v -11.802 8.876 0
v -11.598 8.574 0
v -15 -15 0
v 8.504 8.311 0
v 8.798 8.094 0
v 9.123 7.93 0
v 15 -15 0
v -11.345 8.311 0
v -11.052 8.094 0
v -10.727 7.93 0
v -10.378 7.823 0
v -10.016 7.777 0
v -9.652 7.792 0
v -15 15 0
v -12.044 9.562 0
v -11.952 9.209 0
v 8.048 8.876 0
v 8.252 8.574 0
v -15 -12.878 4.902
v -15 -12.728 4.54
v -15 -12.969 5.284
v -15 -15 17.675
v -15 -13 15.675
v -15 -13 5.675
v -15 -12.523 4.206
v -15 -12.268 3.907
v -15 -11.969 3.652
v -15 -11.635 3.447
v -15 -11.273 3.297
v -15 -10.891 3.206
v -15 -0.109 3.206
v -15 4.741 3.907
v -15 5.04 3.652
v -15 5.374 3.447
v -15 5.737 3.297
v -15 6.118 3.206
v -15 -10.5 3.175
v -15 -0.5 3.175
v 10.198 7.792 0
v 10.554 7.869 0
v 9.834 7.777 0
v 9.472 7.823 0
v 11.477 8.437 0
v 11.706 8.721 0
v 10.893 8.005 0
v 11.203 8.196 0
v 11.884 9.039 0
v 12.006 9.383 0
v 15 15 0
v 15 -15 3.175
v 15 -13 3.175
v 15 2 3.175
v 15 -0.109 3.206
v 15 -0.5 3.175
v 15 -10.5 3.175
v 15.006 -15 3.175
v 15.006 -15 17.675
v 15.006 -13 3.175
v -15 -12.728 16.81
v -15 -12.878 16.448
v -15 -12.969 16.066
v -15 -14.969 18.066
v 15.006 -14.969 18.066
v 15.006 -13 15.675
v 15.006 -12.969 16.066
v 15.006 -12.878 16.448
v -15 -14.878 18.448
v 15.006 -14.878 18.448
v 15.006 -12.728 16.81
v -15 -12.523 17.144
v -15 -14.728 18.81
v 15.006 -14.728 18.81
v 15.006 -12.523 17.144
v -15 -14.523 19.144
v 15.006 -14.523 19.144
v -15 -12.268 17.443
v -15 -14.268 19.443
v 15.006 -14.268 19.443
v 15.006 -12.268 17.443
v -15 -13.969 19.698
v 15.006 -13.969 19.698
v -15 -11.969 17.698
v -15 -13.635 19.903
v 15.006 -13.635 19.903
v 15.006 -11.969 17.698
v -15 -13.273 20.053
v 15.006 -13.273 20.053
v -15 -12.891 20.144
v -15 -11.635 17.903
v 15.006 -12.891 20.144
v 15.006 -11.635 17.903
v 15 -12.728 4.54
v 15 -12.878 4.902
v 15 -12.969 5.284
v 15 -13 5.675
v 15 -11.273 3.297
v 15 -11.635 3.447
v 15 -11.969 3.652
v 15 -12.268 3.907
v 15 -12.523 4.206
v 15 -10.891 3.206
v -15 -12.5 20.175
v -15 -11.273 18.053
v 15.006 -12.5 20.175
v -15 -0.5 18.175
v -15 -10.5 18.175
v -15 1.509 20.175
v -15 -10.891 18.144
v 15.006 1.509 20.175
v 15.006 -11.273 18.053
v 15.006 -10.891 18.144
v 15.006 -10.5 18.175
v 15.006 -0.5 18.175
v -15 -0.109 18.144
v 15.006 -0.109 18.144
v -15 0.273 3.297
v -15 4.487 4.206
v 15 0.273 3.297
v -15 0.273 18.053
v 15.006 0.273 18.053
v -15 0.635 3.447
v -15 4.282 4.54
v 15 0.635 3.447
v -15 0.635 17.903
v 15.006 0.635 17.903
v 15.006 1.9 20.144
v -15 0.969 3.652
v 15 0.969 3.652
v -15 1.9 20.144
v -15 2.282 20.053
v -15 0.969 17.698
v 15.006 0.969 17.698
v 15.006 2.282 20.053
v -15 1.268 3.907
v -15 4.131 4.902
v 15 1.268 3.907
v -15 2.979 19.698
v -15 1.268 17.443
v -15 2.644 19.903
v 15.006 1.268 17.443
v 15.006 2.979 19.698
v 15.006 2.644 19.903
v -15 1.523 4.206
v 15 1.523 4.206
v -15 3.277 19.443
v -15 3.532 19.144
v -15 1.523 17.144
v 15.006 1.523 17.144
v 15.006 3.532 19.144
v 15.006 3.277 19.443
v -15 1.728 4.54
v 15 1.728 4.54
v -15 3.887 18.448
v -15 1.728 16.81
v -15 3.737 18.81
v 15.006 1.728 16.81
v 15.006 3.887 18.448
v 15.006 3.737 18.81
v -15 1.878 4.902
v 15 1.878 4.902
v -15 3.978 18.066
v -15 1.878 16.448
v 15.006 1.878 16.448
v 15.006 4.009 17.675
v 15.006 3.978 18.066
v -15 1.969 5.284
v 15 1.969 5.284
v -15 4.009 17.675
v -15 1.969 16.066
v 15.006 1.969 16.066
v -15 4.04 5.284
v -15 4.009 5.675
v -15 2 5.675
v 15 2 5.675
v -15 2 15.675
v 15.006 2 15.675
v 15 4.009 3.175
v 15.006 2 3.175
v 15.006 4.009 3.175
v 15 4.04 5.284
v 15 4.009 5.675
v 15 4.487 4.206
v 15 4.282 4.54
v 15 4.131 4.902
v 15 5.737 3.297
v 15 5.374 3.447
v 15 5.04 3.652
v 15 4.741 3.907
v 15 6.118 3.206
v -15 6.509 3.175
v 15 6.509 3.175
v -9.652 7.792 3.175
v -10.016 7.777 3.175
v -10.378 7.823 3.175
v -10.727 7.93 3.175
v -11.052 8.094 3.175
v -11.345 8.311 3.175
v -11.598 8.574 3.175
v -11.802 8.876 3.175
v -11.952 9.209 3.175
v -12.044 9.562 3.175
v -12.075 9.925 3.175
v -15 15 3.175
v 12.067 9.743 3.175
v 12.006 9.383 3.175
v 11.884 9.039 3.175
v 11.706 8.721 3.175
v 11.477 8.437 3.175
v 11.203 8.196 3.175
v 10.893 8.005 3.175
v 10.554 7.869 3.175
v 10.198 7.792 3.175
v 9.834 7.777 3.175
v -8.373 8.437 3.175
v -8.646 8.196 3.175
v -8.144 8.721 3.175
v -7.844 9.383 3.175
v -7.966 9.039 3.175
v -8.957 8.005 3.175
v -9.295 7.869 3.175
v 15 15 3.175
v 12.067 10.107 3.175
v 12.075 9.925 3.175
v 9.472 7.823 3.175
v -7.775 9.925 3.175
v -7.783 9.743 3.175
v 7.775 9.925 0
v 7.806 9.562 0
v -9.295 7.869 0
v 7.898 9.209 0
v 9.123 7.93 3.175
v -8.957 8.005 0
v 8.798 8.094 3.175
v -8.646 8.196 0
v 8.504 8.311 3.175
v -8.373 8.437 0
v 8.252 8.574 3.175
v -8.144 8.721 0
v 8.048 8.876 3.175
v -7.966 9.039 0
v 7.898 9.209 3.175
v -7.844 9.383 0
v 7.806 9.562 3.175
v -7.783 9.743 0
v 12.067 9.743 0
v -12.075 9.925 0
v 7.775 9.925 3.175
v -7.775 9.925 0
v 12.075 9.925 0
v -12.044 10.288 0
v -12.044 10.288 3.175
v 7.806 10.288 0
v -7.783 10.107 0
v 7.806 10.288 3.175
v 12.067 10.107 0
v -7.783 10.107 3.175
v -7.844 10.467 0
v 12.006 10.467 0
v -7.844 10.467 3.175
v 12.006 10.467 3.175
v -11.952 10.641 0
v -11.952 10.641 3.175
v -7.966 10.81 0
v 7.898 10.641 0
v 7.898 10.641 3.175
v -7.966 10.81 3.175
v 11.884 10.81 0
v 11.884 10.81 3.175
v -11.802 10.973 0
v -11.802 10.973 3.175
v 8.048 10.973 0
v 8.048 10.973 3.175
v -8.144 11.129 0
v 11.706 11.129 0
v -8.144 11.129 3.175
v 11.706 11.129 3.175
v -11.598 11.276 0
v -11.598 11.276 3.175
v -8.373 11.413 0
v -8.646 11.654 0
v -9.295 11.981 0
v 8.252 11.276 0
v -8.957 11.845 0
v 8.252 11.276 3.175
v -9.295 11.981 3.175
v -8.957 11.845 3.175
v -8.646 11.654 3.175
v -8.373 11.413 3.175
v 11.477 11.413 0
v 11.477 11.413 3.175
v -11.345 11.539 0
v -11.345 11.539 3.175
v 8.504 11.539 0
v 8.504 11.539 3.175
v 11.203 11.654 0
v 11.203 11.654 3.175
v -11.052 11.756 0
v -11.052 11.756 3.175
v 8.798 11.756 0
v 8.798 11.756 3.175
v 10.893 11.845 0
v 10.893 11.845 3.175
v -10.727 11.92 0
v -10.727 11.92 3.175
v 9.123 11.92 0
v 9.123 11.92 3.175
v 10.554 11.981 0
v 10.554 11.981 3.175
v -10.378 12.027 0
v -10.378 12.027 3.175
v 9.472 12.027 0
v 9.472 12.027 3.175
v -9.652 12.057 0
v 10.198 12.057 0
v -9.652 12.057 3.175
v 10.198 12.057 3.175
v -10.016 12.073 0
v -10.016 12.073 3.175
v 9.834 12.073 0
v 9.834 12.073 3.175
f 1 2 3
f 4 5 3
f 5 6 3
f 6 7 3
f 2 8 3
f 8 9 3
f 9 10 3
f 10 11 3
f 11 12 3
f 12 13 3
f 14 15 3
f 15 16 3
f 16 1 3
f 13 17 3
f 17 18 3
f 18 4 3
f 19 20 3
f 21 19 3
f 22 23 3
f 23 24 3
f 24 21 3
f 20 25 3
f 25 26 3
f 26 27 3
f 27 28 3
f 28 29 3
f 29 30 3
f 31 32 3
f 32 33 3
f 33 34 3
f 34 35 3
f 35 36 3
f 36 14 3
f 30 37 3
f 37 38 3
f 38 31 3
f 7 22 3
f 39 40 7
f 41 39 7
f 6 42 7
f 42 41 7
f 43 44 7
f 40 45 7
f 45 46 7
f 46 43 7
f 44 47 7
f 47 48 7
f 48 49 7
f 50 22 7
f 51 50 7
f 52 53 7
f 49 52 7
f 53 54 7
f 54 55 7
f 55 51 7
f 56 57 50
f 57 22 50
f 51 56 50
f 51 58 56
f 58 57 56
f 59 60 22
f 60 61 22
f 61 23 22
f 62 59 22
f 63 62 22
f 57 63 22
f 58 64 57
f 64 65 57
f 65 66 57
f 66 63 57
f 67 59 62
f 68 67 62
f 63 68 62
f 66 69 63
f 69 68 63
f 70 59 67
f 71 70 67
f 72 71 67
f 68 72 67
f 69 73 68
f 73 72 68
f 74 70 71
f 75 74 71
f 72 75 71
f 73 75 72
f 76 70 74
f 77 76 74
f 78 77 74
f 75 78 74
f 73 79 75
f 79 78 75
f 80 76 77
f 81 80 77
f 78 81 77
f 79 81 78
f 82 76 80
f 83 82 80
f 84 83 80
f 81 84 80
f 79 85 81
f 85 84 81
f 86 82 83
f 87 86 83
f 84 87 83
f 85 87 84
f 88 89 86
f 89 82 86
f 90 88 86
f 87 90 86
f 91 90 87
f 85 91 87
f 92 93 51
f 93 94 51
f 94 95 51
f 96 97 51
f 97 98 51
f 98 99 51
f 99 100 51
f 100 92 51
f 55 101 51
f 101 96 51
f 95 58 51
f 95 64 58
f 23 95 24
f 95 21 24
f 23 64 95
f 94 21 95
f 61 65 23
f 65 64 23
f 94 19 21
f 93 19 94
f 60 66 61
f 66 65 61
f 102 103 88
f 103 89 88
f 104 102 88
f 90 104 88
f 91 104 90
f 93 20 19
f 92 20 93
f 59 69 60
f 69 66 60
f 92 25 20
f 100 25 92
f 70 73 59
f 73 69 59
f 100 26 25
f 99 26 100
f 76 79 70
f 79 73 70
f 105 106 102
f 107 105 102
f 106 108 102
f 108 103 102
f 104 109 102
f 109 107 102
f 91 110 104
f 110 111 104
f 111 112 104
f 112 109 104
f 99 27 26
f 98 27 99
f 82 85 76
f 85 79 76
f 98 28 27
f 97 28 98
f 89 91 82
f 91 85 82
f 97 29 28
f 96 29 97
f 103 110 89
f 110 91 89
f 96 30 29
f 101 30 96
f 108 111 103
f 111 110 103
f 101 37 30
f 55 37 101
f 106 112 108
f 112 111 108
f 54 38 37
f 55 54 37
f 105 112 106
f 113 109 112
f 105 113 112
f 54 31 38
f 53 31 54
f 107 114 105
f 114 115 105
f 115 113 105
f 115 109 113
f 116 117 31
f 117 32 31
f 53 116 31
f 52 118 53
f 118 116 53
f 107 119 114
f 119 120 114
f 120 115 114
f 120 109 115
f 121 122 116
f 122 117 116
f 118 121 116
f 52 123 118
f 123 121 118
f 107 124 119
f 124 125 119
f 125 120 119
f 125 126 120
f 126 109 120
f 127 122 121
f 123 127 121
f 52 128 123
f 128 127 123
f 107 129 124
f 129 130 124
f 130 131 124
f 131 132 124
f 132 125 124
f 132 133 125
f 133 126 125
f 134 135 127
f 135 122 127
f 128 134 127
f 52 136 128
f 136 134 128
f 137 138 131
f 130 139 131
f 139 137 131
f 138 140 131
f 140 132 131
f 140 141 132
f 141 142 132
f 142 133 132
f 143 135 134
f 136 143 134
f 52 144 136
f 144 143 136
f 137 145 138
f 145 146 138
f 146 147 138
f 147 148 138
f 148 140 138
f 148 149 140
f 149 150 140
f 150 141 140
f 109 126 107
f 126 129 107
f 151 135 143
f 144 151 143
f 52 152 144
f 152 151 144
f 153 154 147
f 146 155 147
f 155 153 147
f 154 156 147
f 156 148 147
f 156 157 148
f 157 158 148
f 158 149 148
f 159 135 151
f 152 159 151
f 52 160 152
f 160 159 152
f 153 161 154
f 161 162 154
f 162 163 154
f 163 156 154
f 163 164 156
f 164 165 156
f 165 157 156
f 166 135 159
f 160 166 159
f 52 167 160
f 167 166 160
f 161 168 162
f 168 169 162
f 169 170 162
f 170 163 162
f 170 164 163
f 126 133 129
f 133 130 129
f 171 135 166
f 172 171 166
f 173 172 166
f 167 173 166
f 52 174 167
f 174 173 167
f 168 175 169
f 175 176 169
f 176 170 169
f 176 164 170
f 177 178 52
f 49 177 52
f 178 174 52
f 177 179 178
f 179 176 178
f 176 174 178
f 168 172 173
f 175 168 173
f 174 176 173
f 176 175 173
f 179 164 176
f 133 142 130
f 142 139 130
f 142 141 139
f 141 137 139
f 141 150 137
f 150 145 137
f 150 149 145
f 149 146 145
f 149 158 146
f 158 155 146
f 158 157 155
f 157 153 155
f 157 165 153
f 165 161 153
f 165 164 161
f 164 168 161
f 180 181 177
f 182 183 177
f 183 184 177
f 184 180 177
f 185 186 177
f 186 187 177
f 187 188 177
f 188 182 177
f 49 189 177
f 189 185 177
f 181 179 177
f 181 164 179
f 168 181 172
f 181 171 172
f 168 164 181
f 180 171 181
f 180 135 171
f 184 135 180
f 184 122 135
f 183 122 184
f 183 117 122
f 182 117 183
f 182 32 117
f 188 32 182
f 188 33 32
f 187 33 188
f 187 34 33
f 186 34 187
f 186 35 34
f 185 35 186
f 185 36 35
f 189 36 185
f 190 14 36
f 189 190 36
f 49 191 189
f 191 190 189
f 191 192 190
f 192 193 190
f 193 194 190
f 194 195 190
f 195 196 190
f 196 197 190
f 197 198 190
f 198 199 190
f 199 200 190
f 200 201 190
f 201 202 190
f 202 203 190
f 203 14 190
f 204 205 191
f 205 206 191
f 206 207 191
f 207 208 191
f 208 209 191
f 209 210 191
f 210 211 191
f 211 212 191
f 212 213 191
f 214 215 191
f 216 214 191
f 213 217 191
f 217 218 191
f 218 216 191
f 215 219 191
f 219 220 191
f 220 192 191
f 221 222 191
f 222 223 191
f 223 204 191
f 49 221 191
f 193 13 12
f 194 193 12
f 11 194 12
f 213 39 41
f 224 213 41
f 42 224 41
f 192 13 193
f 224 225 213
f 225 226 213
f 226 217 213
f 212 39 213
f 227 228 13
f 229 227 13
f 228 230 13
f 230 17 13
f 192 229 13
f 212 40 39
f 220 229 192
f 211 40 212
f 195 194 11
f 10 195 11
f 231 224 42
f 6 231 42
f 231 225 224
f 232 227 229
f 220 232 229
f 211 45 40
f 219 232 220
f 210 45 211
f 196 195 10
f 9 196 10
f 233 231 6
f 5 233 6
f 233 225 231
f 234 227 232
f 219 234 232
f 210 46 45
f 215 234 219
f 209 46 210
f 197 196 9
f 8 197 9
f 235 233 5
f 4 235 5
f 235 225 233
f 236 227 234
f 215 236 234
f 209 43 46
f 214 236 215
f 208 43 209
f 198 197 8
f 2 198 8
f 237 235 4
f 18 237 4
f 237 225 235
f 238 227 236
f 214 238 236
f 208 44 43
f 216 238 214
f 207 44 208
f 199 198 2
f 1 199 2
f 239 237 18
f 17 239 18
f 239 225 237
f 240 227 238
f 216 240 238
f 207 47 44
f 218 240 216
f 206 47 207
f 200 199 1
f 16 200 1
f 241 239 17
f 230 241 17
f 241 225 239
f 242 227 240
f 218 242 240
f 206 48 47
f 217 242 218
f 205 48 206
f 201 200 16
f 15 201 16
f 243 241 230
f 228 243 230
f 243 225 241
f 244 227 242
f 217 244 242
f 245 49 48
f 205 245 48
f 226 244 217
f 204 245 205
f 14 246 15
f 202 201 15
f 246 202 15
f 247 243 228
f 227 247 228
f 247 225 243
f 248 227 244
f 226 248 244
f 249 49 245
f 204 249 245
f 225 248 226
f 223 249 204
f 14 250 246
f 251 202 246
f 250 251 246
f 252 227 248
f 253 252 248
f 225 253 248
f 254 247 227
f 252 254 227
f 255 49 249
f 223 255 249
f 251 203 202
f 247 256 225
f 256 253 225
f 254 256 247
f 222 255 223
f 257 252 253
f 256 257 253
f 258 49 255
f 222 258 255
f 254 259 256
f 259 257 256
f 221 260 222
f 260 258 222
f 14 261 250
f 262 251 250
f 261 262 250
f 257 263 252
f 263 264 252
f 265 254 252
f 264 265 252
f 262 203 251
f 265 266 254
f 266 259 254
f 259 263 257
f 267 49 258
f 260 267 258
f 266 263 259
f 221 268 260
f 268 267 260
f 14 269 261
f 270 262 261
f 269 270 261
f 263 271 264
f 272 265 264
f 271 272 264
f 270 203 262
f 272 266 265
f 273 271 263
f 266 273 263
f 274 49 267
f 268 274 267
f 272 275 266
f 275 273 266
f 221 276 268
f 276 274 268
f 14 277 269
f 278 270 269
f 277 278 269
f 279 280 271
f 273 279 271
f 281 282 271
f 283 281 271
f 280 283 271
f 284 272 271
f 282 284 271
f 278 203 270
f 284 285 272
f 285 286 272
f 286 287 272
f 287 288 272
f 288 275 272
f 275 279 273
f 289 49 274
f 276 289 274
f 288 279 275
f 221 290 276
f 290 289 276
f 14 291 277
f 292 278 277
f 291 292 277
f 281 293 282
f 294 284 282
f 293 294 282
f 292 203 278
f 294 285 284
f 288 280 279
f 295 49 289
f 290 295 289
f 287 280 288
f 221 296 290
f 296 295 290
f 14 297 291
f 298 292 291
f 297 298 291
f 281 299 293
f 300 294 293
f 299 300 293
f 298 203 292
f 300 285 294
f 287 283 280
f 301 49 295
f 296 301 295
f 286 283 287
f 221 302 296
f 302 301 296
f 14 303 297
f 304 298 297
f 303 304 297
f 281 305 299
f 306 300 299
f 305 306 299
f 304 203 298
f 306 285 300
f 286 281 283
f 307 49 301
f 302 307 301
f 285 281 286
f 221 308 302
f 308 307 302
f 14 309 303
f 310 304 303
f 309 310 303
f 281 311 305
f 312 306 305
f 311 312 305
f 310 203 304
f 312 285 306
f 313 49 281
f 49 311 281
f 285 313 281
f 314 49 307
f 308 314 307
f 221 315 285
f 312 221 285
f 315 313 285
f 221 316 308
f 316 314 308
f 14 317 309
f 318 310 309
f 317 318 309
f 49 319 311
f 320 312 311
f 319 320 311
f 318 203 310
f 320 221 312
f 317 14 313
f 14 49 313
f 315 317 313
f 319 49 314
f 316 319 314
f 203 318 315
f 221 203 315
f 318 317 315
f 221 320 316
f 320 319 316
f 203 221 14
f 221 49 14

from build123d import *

# Parameters (mm, degrees)
SKETCH1_W           = 30
SKETCH1_H           = 30
SKETCH1_R           = 2.15
BOSS_EXTRUDE1_DEPTH = 3.175
SKETCH2_W           = 30.005666414
SKETCH2_H           = 19.009049167
SKETCH2_W_2         = 23.655666414
SKETCH2_H_2         = 12.659049167
BOSS_EXTRUDE2_DEPTH = 15
SKETCH3_W           = 30.005666414
SKETCH3_H           = 19.009049167
BOSS_EXTRUDE3_DEPTH = 2
SKETCH4_W           = 15
SKETCH4_H           = 15
CUT_EXTRUDE1_DEPTH  = 31.005666414
FILLET1_R           = 2.5


with BuildPart() as part:
    # Sketch1 → Boss-Extrude1 (new body)
    with BuildSketch(Plane.XY):
        Rectangle(SKETCH1_W, SKETCH1_H)
        with Locations((-9.924911661, 9.924911661)):
            Circle(SKETCH1_R, mode=Mode.SUBTRACT)
        with Locations((9.924911661, 9.924911661)):
            Circle(SKETCH1_R, mode=Mode.SUBTRACT)
    extrude(amount=BOSS_EXTRUDE1_DEPTH)

    # Sketch2 → Boss-Extrude2 (add)
    with BuildSketch(Plane.XY.offset(3.175)):
        with Locations((0.002833207, -5.495475417)):
            Rectangle(SKETCH2_W, SKETCH2_H)
        with Locations((0.002833207, -5.495475417)):
            Rectangle(SKETCH2_W_2, SKETCH2_H_2, mode=Mode.SUBTRACT)
    extrude(amount=BOSS_EXTRUDE2_DEPTH)

    # Sketch3 → Boss-Extrude3 (add)
    with BuildSketch(Plane.XY.offset(18.175)):
        with Locations((0.002833207, -5.495475417)):
            Rectangle(SKETCH3_W, SKETCH3_H)
    extrude(amount=BOSS_EXTRUDE3_DEPTH)

    # Sketch4 → Cut-Extrude1 (cut, through all)
    with BuildSketch(Plane.ZY.offset(15)):
        with Locations((10.675, -5.5)):
            Rectangle(SKETCH4_W, SKETCH4_H)
    extrude(amount=-CUT_EXTRUDE1_DEPTH, mode=Mode.SUBTRACT)

    # Fillet1
    fillet1_edges = [part.edges().sort_by_distance(p)[0] for p in [
        (0, 4.009049167, 3.175),
        (0.002833207, -15, 20.175),
        (0.002833207, 4.009049167, 20.175),
        (0, -13, 3.175),
        (0, 2, 3.175),
        (0.002833207, 2, 18.175),
        (0.002833207, -13, 18.175),
    ]]
    fillet(fillet1_edges, radius=FILLET1_R)


solid = part.part
